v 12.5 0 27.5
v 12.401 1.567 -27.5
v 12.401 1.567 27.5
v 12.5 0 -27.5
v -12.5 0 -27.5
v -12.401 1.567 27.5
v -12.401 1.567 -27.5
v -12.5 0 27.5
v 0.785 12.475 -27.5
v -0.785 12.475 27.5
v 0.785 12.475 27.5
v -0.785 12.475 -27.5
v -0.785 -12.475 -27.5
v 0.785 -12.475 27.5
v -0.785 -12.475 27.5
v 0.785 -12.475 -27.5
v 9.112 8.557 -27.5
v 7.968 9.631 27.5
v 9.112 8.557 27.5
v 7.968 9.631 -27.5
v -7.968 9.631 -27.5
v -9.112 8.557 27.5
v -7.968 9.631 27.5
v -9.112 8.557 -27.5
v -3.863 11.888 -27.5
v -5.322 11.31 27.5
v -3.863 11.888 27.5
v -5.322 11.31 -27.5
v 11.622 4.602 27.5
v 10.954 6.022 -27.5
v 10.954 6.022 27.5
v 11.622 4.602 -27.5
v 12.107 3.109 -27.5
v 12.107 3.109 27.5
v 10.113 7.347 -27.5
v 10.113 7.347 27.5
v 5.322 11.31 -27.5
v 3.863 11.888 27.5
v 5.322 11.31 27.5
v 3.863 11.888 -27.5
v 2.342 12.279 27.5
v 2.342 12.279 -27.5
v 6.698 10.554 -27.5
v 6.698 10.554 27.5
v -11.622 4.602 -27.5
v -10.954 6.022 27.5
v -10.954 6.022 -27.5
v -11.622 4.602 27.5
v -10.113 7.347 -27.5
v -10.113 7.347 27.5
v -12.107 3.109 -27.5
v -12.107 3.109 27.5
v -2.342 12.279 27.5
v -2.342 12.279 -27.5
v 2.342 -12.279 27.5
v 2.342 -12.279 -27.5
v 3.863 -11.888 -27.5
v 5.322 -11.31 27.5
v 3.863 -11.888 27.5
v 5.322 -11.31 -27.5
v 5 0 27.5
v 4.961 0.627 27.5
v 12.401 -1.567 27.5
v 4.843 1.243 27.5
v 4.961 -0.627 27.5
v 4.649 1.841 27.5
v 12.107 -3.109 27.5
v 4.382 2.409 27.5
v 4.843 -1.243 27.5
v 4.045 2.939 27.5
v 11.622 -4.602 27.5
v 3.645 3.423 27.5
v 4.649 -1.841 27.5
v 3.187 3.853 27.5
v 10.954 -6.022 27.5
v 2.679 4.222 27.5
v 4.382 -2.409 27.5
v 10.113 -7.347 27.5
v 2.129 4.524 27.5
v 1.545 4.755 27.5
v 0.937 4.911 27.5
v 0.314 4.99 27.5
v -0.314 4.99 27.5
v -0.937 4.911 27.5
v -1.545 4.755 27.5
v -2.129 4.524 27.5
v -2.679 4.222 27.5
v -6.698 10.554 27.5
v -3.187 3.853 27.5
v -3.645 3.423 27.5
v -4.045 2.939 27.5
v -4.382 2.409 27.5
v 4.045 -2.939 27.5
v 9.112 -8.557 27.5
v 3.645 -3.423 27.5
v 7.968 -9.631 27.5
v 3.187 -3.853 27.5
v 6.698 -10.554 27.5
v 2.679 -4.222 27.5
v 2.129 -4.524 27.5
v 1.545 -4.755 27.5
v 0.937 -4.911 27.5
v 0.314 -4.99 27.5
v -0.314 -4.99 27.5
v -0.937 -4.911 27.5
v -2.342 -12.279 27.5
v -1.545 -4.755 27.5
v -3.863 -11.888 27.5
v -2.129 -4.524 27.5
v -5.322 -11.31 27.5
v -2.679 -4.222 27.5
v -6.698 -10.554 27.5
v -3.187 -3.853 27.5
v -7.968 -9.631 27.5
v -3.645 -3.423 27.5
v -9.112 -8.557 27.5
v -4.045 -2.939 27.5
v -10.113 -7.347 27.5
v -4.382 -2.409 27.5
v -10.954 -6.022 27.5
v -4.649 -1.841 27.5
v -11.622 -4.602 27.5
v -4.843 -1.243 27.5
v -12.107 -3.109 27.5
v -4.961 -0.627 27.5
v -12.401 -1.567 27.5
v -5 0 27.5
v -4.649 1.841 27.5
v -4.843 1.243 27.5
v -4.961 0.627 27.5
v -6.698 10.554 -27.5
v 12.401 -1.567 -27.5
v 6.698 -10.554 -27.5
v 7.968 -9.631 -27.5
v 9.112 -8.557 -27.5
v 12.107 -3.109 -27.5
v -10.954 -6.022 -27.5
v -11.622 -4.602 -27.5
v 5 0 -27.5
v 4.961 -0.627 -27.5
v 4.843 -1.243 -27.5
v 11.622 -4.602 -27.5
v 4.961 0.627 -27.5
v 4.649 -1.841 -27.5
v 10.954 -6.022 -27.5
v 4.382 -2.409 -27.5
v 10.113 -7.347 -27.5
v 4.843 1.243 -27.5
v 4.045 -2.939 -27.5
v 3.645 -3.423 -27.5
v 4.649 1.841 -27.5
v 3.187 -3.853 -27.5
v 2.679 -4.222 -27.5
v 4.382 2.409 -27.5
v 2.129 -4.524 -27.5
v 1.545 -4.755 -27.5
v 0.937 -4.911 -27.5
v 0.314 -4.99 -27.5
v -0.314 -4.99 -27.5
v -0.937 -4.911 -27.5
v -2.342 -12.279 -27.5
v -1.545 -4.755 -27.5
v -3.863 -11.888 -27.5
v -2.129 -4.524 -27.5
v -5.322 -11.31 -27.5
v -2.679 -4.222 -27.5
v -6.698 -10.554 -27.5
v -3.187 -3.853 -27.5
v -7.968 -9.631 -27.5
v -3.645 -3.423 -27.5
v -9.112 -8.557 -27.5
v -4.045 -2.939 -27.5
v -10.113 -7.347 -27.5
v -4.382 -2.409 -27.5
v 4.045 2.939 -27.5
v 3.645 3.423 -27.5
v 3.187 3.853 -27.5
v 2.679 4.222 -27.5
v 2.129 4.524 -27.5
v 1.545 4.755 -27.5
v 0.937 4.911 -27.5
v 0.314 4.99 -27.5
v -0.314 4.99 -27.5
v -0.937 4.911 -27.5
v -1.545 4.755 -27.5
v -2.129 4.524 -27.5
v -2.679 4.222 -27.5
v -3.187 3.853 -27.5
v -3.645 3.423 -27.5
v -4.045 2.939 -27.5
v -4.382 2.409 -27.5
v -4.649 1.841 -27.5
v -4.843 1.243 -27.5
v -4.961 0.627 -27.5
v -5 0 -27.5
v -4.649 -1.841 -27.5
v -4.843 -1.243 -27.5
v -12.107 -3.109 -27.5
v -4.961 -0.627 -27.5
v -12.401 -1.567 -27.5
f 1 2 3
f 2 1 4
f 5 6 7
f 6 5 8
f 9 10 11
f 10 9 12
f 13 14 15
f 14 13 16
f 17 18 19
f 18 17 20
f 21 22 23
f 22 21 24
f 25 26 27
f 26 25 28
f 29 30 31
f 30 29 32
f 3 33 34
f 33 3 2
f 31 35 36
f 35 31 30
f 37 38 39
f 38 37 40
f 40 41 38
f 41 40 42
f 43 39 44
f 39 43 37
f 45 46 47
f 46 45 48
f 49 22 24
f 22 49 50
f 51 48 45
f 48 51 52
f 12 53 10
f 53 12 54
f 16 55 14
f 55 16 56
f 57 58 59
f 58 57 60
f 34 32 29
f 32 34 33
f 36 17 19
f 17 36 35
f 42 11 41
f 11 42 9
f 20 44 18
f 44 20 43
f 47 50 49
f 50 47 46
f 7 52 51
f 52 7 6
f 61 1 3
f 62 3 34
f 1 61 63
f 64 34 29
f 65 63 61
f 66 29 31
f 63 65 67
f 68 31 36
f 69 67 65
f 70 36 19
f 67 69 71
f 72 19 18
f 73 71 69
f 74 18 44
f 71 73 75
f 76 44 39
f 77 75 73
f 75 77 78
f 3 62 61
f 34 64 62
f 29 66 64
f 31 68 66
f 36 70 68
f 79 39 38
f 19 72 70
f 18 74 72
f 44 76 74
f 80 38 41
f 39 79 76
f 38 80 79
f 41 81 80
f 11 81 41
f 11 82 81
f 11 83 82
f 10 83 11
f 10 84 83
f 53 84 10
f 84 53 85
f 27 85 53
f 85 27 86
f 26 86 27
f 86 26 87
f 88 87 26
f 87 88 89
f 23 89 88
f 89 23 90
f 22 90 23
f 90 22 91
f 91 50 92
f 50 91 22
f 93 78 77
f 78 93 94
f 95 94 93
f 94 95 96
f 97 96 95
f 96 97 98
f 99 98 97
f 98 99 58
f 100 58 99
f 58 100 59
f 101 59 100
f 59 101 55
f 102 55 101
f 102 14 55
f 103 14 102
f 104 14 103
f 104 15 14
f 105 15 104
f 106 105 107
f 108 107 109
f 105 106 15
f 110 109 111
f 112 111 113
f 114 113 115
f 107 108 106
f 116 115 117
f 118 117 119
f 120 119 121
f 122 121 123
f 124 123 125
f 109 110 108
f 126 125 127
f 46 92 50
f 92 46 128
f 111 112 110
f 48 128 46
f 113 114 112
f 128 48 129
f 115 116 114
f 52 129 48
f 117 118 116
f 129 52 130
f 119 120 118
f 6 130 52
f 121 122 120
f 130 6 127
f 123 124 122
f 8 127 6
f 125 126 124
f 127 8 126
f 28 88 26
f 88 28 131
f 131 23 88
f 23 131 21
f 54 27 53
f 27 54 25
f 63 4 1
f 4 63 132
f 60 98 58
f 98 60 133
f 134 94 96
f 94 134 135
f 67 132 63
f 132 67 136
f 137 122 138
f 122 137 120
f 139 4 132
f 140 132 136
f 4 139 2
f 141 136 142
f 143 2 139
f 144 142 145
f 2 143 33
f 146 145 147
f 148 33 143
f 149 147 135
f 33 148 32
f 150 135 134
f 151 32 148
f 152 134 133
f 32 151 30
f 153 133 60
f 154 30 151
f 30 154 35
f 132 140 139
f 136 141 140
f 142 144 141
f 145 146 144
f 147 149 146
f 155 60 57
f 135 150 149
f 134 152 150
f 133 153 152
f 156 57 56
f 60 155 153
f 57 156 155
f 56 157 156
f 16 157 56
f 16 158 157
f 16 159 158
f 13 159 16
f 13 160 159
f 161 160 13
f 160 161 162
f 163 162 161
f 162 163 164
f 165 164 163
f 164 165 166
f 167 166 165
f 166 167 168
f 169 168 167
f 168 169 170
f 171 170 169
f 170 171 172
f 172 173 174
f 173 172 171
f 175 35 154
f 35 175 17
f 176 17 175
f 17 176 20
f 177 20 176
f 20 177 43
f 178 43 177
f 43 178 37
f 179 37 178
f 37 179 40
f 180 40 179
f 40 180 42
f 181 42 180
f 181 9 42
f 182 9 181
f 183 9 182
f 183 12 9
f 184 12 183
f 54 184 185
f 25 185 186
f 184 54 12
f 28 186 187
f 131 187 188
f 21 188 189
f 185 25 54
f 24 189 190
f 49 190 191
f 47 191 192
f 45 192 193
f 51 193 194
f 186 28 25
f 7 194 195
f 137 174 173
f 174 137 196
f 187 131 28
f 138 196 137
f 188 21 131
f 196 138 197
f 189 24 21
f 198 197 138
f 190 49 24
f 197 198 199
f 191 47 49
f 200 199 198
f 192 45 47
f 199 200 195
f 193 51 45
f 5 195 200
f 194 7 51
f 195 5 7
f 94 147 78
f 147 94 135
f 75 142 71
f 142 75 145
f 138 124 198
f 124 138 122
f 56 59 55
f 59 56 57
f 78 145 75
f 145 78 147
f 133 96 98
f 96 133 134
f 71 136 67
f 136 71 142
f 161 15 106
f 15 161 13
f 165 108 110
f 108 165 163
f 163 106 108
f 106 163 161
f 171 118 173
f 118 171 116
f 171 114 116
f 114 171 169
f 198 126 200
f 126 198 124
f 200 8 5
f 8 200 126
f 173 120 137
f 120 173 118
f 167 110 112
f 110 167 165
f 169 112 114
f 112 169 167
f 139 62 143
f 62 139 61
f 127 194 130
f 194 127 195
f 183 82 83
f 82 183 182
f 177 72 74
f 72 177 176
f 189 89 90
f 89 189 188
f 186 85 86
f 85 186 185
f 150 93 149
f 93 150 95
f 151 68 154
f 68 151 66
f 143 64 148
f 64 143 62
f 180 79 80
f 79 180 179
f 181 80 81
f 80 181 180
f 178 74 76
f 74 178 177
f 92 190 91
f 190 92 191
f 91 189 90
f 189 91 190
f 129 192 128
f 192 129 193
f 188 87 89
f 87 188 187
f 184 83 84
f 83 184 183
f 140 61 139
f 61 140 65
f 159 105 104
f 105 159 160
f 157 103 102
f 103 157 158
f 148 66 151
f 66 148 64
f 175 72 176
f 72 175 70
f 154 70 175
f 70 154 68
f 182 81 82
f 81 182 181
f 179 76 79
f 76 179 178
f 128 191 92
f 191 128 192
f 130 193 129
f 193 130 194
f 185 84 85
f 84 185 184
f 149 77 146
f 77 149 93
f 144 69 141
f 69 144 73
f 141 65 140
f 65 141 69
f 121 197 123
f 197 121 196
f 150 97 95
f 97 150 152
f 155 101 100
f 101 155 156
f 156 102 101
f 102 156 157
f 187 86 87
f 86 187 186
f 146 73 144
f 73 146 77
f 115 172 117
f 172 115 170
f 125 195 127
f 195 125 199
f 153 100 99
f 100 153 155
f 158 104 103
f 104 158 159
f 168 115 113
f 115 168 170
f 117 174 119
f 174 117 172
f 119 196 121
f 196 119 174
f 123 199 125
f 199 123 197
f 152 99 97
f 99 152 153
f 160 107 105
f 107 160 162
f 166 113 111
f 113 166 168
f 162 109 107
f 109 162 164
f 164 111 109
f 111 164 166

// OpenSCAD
$fn = 50;


difference() {
	union() {
		translate(v = [0, 0, -27.5000000000]) {
			cylinder(h = 55, r = 12.5000000000);
		}
	}
	union() {
		translate(v = [0, 0, -100.0000000000]) {
			cylinder(h = 200, r = 5);
		}
	}
}
